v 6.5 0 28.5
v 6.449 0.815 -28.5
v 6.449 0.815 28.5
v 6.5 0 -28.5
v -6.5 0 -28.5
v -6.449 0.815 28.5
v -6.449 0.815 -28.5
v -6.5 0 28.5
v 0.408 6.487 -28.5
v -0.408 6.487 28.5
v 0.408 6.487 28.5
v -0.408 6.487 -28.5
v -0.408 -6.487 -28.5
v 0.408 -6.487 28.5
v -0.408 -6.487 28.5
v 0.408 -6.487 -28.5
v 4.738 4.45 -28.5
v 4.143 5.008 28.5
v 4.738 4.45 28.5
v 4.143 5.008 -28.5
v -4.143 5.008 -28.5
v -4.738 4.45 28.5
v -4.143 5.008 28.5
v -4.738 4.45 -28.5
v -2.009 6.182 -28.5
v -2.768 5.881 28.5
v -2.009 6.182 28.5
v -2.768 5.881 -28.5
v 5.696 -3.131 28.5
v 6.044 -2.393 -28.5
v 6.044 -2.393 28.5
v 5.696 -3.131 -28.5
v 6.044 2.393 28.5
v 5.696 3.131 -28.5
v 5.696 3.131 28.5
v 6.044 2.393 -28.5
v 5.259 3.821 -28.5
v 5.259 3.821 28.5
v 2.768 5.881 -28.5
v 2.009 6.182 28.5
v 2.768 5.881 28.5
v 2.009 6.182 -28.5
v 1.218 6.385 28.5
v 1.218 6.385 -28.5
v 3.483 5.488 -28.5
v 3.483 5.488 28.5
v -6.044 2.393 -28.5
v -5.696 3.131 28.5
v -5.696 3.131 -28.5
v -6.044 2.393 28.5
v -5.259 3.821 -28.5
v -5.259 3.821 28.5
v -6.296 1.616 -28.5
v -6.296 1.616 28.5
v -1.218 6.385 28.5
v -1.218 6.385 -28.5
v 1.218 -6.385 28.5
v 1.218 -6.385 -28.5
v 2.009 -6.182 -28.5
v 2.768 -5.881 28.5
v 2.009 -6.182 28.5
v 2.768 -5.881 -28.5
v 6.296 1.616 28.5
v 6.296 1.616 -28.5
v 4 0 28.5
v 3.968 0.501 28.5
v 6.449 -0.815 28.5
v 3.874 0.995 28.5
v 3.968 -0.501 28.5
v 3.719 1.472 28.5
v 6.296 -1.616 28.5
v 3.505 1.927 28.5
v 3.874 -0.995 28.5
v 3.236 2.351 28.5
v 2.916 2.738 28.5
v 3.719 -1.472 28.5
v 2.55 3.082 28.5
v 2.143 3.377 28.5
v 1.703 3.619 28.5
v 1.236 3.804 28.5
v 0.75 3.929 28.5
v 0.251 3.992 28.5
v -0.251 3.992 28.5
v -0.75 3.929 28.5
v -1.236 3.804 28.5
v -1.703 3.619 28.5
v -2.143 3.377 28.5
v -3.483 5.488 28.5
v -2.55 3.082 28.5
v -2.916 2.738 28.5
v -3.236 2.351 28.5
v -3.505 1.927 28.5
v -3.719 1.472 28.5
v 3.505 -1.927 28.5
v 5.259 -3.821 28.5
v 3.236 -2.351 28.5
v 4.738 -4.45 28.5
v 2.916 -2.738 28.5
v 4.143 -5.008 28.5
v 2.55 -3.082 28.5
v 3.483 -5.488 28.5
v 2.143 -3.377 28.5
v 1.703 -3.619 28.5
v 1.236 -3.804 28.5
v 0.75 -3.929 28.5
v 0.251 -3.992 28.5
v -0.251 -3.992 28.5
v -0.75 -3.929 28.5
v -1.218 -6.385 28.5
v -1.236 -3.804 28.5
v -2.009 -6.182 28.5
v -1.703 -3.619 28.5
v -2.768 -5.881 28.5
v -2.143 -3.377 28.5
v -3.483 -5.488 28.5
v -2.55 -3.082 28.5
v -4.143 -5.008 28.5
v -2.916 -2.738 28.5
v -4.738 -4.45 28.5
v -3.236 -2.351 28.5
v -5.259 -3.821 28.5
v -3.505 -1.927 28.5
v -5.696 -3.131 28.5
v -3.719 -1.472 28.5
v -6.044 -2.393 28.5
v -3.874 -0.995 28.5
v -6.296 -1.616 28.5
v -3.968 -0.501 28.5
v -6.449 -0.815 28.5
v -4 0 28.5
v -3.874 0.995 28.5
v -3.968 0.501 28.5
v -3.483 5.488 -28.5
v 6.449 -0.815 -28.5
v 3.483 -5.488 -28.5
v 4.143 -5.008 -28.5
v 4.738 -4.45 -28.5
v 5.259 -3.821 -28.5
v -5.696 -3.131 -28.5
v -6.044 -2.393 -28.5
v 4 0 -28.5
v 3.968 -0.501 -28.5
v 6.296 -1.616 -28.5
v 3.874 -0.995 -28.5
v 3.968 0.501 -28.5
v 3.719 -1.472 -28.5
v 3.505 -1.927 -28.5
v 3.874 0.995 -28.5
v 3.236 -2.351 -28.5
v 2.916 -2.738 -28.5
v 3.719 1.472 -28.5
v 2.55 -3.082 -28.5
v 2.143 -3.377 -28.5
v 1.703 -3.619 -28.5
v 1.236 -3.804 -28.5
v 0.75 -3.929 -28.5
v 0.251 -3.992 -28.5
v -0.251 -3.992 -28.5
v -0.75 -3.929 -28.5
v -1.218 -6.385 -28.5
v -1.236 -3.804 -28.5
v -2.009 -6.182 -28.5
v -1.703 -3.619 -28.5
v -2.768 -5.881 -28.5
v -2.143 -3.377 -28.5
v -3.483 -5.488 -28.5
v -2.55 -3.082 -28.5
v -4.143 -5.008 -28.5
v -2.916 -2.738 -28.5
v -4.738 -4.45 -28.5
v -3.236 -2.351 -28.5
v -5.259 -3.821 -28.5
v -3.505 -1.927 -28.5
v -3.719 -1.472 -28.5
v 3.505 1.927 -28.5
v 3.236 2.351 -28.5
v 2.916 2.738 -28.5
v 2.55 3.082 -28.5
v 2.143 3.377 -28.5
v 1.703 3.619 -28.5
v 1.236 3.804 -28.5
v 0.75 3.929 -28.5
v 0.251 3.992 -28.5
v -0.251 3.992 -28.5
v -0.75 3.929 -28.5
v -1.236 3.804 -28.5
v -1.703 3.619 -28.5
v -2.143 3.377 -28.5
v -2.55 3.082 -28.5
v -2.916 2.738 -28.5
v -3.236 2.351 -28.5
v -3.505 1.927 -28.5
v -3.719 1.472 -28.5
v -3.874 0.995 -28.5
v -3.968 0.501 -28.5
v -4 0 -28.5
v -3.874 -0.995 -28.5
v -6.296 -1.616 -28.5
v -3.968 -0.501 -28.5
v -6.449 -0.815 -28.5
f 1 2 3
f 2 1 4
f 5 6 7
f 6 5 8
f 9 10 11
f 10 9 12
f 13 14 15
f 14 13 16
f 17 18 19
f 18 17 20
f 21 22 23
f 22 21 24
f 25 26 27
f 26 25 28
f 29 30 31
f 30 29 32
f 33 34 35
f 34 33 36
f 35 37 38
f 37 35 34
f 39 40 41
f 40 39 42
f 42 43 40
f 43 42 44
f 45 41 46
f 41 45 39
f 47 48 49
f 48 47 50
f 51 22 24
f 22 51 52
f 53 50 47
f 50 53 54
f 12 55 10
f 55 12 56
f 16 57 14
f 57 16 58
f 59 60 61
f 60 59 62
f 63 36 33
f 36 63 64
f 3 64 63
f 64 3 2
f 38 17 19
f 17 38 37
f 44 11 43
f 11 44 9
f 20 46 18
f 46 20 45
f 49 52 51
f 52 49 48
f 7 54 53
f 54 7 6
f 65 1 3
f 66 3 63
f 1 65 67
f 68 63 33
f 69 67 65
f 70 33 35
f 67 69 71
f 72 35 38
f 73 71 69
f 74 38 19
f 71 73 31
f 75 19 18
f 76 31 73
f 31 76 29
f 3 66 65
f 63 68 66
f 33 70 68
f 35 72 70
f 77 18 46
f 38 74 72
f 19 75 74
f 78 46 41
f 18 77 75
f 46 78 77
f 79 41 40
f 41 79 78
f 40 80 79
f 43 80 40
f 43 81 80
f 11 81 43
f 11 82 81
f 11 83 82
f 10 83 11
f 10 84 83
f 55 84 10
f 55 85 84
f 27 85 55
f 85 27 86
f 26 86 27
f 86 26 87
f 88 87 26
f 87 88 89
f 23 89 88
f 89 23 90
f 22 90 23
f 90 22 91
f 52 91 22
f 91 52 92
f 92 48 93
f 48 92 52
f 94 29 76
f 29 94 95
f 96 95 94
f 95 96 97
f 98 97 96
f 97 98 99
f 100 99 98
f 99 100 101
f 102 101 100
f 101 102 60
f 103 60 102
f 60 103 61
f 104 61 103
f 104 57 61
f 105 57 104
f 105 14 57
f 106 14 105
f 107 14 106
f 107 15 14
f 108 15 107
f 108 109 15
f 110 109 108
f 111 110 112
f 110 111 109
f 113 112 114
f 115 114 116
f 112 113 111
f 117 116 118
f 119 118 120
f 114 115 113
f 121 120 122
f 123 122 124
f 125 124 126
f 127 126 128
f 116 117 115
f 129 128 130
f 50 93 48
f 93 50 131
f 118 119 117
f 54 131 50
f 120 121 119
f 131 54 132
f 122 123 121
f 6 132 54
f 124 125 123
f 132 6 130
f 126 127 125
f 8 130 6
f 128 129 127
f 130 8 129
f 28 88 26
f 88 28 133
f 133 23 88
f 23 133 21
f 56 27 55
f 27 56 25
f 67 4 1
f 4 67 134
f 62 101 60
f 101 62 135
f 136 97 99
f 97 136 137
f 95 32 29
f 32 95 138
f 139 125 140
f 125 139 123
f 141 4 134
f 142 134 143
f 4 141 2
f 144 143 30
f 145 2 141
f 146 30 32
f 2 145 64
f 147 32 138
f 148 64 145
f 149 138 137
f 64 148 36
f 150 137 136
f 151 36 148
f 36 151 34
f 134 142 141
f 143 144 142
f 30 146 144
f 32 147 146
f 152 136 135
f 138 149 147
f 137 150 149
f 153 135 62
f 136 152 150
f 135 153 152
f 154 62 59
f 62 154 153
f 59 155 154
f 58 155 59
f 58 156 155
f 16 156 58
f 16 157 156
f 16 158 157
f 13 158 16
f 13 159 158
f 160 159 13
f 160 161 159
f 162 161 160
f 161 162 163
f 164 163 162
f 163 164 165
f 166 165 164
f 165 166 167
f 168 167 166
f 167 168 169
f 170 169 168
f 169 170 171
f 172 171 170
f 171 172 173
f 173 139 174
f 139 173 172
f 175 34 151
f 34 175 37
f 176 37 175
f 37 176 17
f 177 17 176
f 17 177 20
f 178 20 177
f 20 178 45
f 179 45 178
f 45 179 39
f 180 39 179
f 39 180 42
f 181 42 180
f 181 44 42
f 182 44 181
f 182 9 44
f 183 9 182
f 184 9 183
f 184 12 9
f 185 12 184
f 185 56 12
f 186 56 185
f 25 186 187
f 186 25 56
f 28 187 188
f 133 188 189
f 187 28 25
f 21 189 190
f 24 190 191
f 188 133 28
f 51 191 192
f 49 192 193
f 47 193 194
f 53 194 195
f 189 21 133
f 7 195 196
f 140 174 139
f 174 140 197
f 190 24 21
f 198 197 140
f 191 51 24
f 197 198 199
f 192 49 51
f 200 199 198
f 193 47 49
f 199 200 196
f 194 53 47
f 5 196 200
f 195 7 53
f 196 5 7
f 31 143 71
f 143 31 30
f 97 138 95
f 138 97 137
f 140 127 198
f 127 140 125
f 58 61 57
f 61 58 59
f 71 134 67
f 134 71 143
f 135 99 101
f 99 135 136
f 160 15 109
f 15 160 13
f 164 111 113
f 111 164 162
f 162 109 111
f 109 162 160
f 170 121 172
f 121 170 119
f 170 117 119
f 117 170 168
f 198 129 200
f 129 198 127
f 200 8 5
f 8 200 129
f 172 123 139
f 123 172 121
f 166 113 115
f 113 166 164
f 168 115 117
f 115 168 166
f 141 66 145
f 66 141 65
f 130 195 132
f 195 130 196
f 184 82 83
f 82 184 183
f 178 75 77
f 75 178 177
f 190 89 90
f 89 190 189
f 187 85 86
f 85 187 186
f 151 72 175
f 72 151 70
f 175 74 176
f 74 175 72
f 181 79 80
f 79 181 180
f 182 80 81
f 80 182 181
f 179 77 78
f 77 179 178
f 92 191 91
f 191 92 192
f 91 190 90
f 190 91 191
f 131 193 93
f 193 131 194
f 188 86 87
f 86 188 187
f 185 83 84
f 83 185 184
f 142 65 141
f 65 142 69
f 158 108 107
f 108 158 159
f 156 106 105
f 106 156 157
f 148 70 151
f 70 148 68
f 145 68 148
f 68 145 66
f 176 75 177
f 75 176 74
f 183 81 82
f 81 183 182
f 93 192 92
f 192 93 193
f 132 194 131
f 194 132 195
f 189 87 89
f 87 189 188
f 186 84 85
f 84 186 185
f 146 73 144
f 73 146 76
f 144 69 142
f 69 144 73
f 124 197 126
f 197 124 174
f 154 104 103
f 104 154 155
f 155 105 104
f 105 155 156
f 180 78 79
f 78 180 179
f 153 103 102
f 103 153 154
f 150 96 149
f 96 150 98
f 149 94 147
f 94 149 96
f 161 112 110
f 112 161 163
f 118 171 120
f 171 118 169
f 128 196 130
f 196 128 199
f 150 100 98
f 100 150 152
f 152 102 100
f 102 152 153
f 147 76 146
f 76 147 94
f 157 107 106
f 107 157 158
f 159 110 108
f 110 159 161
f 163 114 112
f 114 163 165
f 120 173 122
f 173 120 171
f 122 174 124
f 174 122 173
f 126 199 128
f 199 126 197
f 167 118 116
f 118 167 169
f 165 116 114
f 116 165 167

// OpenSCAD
$fn = 50;


difference() {
	union() {
		translate(v = [0, 0, -28.5000000000]) {
			cylinder(h = 57, r = 6.5000000000);
		}
	}
	union() {
		translate(v = [0, 0, -100.0000000000]) {
			cylinder(h = 200, r = 4);
		}
	}
}
